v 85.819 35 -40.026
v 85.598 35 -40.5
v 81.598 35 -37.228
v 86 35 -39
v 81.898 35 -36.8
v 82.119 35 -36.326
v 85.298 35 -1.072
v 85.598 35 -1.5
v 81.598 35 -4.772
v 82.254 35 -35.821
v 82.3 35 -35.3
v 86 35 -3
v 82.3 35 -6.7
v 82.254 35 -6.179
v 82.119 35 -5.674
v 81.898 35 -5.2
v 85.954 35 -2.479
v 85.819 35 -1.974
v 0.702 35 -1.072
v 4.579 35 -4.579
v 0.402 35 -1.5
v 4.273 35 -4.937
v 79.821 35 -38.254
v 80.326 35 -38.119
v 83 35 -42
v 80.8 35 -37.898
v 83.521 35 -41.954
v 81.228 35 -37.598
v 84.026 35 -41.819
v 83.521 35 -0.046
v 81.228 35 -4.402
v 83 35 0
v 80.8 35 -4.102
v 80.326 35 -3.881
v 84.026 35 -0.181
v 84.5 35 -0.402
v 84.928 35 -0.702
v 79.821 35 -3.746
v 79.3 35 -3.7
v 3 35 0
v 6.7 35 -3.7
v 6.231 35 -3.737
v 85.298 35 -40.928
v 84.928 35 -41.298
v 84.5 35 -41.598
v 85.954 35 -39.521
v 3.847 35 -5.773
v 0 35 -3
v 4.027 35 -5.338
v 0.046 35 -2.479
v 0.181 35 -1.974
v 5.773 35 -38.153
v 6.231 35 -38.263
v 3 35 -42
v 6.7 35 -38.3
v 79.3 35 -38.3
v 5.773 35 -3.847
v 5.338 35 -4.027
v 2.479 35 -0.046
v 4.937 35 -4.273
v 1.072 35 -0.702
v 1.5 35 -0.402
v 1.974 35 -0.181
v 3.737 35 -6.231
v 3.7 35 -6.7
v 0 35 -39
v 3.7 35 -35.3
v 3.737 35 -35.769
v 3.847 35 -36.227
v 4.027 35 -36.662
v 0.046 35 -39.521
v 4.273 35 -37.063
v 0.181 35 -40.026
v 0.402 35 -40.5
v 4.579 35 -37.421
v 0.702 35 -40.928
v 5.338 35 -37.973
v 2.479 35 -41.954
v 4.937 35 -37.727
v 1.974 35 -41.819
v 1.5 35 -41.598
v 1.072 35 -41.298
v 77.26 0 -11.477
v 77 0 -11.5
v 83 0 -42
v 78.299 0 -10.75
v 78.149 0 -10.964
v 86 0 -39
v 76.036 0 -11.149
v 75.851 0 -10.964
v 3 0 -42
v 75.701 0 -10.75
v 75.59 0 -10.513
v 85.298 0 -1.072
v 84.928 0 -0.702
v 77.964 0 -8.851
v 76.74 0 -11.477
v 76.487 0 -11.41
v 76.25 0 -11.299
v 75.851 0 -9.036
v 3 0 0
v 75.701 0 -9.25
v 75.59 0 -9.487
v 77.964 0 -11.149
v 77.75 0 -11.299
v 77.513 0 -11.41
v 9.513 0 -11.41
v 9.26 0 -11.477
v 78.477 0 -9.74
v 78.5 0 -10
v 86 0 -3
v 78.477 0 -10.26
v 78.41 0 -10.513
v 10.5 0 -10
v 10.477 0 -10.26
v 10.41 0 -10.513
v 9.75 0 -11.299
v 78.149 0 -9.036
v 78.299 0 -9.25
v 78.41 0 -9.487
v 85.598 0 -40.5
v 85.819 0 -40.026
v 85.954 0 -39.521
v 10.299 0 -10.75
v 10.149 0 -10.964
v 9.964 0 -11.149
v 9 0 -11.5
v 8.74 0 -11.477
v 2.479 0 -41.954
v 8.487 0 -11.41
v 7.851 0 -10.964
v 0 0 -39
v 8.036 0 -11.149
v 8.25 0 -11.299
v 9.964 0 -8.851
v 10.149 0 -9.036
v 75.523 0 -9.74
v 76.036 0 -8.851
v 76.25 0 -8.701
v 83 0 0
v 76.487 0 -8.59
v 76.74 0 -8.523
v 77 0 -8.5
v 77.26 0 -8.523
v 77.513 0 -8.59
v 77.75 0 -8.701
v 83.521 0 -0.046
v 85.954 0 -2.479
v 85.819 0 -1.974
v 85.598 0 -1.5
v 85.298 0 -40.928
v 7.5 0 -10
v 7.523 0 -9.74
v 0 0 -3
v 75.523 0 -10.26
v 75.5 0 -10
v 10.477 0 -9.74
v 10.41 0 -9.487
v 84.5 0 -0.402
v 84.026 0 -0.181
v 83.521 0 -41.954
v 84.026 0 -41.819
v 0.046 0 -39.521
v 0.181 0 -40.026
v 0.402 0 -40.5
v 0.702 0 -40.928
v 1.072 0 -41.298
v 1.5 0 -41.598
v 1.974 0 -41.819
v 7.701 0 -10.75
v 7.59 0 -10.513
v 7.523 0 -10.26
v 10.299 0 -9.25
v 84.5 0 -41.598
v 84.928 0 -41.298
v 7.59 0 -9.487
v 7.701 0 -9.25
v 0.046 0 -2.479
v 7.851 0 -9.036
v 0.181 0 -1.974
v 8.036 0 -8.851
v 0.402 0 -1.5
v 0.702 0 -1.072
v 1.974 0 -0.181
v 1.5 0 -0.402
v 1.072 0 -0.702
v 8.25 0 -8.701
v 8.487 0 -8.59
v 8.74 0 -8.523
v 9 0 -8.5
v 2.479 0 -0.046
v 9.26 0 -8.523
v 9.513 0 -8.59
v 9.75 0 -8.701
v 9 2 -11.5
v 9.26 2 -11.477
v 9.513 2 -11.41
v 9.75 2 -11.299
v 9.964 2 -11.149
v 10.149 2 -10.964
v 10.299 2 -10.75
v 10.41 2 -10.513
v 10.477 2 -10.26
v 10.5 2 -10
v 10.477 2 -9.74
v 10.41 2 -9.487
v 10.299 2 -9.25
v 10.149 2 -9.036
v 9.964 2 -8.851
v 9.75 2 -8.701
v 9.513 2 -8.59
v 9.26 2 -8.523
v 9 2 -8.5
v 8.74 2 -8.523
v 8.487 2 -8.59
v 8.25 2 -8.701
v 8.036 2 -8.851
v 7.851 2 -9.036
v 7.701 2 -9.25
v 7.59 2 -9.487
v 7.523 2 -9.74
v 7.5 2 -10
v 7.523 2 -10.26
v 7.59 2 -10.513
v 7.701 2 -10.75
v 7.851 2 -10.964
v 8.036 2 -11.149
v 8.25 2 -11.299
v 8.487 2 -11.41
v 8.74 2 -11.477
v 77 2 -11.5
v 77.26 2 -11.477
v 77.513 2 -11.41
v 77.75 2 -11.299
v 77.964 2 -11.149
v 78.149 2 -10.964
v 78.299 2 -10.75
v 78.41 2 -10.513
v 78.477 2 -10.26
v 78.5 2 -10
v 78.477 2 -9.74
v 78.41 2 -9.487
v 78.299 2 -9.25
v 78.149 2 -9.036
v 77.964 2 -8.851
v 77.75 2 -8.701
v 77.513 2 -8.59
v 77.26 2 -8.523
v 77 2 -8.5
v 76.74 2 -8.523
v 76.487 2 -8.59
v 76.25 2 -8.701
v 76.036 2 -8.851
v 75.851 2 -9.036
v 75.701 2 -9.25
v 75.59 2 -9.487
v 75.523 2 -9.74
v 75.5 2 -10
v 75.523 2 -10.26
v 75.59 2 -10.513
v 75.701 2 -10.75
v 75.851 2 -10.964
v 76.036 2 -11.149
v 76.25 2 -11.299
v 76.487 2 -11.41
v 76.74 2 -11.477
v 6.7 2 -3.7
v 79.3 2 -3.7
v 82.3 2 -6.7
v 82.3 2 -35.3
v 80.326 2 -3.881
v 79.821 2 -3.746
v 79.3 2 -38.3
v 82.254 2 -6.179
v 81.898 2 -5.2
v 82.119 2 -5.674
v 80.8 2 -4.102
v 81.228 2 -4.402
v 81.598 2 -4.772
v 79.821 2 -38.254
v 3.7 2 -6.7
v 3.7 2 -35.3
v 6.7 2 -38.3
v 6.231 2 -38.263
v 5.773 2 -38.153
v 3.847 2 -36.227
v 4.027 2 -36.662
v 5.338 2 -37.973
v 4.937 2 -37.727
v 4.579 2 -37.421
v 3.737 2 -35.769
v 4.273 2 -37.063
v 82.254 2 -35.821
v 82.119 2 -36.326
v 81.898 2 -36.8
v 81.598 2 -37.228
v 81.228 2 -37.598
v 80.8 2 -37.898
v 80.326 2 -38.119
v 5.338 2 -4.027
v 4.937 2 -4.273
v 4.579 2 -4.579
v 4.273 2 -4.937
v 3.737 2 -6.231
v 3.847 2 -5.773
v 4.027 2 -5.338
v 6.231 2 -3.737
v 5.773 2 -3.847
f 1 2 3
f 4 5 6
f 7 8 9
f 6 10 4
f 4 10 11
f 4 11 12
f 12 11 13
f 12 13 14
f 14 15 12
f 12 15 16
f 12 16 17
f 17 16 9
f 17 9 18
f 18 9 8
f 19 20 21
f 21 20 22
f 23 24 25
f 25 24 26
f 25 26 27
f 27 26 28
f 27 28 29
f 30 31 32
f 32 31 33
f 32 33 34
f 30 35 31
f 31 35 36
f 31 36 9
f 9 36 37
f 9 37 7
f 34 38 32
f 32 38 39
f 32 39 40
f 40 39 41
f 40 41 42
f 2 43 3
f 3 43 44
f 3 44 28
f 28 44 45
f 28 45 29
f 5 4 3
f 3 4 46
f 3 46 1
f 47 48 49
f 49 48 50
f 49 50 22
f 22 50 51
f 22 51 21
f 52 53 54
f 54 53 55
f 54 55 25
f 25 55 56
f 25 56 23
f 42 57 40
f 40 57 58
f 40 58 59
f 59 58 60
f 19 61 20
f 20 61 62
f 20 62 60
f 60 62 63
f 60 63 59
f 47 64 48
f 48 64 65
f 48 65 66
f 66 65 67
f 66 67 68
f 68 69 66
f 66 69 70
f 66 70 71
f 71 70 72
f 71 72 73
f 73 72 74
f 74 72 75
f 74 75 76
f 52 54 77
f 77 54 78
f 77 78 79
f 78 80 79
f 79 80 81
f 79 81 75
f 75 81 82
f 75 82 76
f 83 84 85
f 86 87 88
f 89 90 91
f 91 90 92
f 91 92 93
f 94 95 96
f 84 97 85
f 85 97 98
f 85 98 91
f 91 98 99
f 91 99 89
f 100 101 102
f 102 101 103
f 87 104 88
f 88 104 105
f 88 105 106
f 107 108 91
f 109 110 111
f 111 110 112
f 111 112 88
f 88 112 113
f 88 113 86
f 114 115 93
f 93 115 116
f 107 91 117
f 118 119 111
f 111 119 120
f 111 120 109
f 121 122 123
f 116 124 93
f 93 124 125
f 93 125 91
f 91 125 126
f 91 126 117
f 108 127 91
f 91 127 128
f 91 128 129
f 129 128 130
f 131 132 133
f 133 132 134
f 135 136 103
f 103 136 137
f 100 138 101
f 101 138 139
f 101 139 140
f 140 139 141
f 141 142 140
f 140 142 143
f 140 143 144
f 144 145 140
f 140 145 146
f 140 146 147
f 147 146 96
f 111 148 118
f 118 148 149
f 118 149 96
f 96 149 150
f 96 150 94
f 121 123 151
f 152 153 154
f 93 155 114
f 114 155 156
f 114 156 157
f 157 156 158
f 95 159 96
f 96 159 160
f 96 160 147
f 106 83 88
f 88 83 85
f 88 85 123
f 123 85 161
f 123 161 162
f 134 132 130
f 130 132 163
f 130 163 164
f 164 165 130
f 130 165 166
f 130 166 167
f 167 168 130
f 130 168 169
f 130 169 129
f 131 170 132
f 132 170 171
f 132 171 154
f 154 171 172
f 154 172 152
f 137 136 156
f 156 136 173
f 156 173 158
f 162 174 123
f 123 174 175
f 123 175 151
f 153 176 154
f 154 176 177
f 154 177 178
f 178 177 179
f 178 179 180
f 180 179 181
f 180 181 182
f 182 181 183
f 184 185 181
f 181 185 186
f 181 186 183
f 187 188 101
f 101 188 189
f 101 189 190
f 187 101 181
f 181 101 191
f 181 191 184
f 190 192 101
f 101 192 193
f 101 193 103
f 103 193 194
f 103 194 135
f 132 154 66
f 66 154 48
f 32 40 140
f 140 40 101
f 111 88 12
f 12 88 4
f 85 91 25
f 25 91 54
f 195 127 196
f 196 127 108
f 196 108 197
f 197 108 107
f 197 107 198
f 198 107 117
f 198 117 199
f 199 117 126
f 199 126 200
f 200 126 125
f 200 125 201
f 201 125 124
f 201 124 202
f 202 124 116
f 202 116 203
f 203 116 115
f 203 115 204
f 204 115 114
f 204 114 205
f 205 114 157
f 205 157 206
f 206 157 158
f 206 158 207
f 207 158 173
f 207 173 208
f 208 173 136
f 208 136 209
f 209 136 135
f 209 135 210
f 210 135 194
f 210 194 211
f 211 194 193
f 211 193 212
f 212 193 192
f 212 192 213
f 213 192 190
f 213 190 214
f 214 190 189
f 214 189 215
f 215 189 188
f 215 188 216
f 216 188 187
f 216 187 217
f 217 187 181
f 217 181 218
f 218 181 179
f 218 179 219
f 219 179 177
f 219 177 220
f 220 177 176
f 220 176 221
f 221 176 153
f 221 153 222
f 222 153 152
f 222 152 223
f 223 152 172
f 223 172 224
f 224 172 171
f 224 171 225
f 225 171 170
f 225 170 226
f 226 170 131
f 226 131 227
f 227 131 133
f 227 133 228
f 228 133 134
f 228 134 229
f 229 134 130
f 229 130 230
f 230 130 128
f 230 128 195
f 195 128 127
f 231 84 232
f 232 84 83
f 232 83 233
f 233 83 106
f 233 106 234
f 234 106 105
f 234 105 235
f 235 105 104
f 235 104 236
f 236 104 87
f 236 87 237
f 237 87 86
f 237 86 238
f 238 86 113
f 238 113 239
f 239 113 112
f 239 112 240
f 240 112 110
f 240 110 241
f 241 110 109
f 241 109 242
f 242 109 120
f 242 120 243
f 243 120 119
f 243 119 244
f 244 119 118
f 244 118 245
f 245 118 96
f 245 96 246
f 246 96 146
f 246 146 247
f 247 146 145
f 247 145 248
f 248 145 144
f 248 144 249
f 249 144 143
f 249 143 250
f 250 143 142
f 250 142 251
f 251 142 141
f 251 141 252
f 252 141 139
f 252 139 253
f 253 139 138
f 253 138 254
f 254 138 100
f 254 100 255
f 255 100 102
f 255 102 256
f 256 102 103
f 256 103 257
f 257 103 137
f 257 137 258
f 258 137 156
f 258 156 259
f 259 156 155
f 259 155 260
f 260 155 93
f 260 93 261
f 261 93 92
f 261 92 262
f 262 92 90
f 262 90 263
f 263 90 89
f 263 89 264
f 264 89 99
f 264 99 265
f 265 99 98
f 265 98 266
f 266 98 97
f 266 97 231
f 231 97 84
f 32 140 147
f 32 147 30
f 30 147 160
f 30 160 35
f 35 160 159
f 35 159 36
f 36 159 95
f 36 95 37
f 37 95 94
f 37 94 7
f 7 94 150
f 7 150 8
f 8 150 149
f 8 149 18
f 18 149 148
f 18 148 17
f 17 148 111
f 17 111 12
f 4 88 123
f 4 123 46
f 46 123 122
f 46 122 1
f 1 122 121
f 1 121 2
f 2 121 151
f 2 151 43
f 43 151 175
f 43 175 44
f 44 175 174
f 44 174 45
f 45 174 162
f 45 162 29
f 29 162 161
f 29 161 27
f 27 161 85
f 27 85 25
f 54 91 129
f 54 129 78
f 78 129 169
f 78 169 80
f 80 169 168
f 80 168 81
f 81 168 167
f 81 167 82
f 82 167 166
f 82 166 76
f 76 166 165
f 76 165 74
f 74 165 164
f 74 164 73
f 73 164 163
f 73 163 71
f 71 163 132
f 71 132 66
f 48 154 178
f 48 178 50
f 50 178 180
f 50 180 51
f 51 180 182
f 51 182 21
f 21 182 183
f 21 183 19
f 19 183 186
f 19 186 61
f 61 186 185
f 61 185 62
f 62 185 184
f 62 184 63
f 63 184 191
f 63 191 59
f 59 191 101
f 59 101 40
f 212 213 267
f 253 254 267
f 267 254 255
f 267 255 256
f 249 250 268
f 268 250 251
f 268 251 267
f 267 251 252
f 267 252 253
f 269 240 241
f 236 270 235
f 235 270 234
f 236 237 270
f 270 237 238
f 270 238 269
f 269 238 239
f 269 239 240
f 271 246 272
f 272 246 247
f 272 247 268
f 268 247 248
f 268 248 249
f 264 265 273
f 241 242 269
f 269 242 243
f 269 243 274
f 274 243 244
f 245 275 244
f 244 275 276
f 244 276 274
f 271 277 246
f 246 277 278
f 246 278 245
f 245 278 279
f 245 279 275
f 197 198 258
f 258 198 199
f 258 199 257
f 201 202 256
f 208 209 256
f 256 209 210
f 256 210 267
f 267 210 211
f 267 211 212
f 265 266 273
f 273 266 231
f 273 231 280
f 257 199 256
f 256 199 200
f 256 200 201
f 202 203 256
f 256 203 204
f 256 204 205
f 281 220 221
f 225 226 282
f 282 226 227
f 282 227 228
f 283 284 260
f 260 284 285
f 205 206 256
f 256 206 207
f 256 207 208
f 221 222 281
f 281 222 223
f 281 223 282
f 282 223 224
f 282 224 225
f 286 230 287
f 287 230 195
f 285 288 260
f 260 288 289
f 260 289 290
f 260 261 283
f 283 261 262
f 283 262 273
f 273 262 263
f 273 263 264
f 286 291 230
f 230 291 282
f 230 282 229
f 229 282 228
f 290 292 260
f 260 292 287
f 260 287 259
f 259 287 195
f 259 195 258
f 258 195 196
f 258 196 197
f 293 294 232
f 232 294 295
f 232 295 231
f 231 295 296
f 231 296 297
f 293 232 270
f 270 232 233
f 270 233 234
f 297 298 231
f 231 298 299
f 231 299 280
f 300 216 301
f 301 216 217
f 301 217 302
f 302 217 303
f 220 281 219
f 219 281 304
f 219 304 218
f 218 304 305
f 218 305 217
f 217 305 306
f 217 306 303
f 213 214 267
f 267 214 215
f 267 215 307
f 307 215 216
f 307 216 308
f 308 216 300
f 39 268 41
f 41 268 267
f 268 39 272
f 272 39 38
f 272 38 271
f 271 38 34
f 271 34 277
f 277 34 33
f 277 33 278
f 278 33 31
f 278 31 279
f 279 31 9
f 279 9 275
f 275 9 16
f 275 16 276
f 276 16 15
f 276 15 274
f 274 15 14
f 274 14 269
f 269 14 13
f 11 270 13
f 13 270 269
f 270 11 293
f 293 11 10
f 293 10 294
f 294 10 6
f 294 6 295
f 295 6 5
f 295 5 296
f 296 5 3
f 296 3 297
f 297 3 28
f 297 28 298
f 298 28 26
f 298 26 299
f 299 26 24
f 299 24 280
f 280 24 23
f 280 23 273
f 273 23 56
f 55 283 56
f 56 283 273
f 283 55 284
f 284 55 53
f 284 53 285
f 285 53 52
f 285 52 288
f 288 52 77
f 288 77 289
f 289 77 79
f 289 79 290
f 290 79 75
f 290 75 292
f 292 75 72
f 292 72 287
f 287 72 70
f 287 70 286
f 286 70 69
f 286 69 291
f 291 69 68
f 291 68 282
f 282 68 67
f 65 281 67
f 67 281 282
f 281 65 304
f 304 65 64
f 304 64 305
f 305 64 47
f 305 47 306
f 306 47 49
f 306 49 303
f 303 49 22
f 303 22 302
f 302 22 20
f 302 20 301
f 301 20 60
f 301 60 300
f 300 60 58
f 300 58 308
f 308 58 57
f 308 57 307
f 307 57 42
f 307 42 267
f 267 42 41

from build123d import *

# Parameters (mm, degrees)
SKETCH1_W           = 86
SKETCH1_H           = 42
SKETCH1_R           = 1.5
BOSS_EXTRUDE1_DEPTH = 35
FILLET1_R           = 3
CUT_EXTRUDE1_DEPTH  = 33


with BuildPart() as part:
    # Sketch1 → Boss-Extrude1 (new body)
    with BuildSketch(Plane(origin=(0, 0, 0), x_dir=(1, 0, 0), z_dir=(0, 1, 0))):
        with Locations((43, 21)):
            Rectangle(SKETCH1_W, SKETCH1_H)
        with Locations((9, 10)):
            Circle(SKETCH1_R, mode=Mode.SUBTRACT)
        with Locations((77, 10)):
            Circle(SKETCH1_R, mode=Mode.SUBTRACT)
    extrude(amount=BOSS_EXTRUDE1_DEPTH)

    # Fillet1
    fillet1_edges = [part.edges().sort_by_distance(p)[0] for p in [
        (0, 17.5, -42),
        (86, 17.5, -42),
        (86, 17.5, 0),
        (0, 17.5, 0),
    ]]
    fillet(fillet1_edges, radius=FILLET1_R)

    # Sketch2 → Cut-Extrude1 (cut)
    with BuildSketch(Plane(origin=(0, 35, 0), x_dir=(1, 0, 0), z_dir=(0, 1, 0))):
        with BuildLine():
            Line((6.7, 3.7), (79.3, 3.7))
            ThreePointArc((79.3, 3.7), (81.421320344, 4.578679656), (82.3, 6.7))
            Line((82.3, 6.7), (82.3, 35.3))
            ThreePointArc((82.3, 35.3), (81.421320344, 37.421320344), (79.3, 38.3))
            Line((79.3, 38.3), (6.7, 38.3))
            ThreePointArc((6.7, 38.3), (4.578679656, 37.421320344), (3.7, 35.3))
            Line((3.7, 35.3), (3.7, 6.7))
            ThreePointArc((3.7, 6.7), (4.578679656, 4.578679656), (6.7, 3.7))
        make_face()
    extrude(amount=-CUT_EXTRUDE1_DEPTH, mode=Mode.SUBTRACT)


solid = part.part
